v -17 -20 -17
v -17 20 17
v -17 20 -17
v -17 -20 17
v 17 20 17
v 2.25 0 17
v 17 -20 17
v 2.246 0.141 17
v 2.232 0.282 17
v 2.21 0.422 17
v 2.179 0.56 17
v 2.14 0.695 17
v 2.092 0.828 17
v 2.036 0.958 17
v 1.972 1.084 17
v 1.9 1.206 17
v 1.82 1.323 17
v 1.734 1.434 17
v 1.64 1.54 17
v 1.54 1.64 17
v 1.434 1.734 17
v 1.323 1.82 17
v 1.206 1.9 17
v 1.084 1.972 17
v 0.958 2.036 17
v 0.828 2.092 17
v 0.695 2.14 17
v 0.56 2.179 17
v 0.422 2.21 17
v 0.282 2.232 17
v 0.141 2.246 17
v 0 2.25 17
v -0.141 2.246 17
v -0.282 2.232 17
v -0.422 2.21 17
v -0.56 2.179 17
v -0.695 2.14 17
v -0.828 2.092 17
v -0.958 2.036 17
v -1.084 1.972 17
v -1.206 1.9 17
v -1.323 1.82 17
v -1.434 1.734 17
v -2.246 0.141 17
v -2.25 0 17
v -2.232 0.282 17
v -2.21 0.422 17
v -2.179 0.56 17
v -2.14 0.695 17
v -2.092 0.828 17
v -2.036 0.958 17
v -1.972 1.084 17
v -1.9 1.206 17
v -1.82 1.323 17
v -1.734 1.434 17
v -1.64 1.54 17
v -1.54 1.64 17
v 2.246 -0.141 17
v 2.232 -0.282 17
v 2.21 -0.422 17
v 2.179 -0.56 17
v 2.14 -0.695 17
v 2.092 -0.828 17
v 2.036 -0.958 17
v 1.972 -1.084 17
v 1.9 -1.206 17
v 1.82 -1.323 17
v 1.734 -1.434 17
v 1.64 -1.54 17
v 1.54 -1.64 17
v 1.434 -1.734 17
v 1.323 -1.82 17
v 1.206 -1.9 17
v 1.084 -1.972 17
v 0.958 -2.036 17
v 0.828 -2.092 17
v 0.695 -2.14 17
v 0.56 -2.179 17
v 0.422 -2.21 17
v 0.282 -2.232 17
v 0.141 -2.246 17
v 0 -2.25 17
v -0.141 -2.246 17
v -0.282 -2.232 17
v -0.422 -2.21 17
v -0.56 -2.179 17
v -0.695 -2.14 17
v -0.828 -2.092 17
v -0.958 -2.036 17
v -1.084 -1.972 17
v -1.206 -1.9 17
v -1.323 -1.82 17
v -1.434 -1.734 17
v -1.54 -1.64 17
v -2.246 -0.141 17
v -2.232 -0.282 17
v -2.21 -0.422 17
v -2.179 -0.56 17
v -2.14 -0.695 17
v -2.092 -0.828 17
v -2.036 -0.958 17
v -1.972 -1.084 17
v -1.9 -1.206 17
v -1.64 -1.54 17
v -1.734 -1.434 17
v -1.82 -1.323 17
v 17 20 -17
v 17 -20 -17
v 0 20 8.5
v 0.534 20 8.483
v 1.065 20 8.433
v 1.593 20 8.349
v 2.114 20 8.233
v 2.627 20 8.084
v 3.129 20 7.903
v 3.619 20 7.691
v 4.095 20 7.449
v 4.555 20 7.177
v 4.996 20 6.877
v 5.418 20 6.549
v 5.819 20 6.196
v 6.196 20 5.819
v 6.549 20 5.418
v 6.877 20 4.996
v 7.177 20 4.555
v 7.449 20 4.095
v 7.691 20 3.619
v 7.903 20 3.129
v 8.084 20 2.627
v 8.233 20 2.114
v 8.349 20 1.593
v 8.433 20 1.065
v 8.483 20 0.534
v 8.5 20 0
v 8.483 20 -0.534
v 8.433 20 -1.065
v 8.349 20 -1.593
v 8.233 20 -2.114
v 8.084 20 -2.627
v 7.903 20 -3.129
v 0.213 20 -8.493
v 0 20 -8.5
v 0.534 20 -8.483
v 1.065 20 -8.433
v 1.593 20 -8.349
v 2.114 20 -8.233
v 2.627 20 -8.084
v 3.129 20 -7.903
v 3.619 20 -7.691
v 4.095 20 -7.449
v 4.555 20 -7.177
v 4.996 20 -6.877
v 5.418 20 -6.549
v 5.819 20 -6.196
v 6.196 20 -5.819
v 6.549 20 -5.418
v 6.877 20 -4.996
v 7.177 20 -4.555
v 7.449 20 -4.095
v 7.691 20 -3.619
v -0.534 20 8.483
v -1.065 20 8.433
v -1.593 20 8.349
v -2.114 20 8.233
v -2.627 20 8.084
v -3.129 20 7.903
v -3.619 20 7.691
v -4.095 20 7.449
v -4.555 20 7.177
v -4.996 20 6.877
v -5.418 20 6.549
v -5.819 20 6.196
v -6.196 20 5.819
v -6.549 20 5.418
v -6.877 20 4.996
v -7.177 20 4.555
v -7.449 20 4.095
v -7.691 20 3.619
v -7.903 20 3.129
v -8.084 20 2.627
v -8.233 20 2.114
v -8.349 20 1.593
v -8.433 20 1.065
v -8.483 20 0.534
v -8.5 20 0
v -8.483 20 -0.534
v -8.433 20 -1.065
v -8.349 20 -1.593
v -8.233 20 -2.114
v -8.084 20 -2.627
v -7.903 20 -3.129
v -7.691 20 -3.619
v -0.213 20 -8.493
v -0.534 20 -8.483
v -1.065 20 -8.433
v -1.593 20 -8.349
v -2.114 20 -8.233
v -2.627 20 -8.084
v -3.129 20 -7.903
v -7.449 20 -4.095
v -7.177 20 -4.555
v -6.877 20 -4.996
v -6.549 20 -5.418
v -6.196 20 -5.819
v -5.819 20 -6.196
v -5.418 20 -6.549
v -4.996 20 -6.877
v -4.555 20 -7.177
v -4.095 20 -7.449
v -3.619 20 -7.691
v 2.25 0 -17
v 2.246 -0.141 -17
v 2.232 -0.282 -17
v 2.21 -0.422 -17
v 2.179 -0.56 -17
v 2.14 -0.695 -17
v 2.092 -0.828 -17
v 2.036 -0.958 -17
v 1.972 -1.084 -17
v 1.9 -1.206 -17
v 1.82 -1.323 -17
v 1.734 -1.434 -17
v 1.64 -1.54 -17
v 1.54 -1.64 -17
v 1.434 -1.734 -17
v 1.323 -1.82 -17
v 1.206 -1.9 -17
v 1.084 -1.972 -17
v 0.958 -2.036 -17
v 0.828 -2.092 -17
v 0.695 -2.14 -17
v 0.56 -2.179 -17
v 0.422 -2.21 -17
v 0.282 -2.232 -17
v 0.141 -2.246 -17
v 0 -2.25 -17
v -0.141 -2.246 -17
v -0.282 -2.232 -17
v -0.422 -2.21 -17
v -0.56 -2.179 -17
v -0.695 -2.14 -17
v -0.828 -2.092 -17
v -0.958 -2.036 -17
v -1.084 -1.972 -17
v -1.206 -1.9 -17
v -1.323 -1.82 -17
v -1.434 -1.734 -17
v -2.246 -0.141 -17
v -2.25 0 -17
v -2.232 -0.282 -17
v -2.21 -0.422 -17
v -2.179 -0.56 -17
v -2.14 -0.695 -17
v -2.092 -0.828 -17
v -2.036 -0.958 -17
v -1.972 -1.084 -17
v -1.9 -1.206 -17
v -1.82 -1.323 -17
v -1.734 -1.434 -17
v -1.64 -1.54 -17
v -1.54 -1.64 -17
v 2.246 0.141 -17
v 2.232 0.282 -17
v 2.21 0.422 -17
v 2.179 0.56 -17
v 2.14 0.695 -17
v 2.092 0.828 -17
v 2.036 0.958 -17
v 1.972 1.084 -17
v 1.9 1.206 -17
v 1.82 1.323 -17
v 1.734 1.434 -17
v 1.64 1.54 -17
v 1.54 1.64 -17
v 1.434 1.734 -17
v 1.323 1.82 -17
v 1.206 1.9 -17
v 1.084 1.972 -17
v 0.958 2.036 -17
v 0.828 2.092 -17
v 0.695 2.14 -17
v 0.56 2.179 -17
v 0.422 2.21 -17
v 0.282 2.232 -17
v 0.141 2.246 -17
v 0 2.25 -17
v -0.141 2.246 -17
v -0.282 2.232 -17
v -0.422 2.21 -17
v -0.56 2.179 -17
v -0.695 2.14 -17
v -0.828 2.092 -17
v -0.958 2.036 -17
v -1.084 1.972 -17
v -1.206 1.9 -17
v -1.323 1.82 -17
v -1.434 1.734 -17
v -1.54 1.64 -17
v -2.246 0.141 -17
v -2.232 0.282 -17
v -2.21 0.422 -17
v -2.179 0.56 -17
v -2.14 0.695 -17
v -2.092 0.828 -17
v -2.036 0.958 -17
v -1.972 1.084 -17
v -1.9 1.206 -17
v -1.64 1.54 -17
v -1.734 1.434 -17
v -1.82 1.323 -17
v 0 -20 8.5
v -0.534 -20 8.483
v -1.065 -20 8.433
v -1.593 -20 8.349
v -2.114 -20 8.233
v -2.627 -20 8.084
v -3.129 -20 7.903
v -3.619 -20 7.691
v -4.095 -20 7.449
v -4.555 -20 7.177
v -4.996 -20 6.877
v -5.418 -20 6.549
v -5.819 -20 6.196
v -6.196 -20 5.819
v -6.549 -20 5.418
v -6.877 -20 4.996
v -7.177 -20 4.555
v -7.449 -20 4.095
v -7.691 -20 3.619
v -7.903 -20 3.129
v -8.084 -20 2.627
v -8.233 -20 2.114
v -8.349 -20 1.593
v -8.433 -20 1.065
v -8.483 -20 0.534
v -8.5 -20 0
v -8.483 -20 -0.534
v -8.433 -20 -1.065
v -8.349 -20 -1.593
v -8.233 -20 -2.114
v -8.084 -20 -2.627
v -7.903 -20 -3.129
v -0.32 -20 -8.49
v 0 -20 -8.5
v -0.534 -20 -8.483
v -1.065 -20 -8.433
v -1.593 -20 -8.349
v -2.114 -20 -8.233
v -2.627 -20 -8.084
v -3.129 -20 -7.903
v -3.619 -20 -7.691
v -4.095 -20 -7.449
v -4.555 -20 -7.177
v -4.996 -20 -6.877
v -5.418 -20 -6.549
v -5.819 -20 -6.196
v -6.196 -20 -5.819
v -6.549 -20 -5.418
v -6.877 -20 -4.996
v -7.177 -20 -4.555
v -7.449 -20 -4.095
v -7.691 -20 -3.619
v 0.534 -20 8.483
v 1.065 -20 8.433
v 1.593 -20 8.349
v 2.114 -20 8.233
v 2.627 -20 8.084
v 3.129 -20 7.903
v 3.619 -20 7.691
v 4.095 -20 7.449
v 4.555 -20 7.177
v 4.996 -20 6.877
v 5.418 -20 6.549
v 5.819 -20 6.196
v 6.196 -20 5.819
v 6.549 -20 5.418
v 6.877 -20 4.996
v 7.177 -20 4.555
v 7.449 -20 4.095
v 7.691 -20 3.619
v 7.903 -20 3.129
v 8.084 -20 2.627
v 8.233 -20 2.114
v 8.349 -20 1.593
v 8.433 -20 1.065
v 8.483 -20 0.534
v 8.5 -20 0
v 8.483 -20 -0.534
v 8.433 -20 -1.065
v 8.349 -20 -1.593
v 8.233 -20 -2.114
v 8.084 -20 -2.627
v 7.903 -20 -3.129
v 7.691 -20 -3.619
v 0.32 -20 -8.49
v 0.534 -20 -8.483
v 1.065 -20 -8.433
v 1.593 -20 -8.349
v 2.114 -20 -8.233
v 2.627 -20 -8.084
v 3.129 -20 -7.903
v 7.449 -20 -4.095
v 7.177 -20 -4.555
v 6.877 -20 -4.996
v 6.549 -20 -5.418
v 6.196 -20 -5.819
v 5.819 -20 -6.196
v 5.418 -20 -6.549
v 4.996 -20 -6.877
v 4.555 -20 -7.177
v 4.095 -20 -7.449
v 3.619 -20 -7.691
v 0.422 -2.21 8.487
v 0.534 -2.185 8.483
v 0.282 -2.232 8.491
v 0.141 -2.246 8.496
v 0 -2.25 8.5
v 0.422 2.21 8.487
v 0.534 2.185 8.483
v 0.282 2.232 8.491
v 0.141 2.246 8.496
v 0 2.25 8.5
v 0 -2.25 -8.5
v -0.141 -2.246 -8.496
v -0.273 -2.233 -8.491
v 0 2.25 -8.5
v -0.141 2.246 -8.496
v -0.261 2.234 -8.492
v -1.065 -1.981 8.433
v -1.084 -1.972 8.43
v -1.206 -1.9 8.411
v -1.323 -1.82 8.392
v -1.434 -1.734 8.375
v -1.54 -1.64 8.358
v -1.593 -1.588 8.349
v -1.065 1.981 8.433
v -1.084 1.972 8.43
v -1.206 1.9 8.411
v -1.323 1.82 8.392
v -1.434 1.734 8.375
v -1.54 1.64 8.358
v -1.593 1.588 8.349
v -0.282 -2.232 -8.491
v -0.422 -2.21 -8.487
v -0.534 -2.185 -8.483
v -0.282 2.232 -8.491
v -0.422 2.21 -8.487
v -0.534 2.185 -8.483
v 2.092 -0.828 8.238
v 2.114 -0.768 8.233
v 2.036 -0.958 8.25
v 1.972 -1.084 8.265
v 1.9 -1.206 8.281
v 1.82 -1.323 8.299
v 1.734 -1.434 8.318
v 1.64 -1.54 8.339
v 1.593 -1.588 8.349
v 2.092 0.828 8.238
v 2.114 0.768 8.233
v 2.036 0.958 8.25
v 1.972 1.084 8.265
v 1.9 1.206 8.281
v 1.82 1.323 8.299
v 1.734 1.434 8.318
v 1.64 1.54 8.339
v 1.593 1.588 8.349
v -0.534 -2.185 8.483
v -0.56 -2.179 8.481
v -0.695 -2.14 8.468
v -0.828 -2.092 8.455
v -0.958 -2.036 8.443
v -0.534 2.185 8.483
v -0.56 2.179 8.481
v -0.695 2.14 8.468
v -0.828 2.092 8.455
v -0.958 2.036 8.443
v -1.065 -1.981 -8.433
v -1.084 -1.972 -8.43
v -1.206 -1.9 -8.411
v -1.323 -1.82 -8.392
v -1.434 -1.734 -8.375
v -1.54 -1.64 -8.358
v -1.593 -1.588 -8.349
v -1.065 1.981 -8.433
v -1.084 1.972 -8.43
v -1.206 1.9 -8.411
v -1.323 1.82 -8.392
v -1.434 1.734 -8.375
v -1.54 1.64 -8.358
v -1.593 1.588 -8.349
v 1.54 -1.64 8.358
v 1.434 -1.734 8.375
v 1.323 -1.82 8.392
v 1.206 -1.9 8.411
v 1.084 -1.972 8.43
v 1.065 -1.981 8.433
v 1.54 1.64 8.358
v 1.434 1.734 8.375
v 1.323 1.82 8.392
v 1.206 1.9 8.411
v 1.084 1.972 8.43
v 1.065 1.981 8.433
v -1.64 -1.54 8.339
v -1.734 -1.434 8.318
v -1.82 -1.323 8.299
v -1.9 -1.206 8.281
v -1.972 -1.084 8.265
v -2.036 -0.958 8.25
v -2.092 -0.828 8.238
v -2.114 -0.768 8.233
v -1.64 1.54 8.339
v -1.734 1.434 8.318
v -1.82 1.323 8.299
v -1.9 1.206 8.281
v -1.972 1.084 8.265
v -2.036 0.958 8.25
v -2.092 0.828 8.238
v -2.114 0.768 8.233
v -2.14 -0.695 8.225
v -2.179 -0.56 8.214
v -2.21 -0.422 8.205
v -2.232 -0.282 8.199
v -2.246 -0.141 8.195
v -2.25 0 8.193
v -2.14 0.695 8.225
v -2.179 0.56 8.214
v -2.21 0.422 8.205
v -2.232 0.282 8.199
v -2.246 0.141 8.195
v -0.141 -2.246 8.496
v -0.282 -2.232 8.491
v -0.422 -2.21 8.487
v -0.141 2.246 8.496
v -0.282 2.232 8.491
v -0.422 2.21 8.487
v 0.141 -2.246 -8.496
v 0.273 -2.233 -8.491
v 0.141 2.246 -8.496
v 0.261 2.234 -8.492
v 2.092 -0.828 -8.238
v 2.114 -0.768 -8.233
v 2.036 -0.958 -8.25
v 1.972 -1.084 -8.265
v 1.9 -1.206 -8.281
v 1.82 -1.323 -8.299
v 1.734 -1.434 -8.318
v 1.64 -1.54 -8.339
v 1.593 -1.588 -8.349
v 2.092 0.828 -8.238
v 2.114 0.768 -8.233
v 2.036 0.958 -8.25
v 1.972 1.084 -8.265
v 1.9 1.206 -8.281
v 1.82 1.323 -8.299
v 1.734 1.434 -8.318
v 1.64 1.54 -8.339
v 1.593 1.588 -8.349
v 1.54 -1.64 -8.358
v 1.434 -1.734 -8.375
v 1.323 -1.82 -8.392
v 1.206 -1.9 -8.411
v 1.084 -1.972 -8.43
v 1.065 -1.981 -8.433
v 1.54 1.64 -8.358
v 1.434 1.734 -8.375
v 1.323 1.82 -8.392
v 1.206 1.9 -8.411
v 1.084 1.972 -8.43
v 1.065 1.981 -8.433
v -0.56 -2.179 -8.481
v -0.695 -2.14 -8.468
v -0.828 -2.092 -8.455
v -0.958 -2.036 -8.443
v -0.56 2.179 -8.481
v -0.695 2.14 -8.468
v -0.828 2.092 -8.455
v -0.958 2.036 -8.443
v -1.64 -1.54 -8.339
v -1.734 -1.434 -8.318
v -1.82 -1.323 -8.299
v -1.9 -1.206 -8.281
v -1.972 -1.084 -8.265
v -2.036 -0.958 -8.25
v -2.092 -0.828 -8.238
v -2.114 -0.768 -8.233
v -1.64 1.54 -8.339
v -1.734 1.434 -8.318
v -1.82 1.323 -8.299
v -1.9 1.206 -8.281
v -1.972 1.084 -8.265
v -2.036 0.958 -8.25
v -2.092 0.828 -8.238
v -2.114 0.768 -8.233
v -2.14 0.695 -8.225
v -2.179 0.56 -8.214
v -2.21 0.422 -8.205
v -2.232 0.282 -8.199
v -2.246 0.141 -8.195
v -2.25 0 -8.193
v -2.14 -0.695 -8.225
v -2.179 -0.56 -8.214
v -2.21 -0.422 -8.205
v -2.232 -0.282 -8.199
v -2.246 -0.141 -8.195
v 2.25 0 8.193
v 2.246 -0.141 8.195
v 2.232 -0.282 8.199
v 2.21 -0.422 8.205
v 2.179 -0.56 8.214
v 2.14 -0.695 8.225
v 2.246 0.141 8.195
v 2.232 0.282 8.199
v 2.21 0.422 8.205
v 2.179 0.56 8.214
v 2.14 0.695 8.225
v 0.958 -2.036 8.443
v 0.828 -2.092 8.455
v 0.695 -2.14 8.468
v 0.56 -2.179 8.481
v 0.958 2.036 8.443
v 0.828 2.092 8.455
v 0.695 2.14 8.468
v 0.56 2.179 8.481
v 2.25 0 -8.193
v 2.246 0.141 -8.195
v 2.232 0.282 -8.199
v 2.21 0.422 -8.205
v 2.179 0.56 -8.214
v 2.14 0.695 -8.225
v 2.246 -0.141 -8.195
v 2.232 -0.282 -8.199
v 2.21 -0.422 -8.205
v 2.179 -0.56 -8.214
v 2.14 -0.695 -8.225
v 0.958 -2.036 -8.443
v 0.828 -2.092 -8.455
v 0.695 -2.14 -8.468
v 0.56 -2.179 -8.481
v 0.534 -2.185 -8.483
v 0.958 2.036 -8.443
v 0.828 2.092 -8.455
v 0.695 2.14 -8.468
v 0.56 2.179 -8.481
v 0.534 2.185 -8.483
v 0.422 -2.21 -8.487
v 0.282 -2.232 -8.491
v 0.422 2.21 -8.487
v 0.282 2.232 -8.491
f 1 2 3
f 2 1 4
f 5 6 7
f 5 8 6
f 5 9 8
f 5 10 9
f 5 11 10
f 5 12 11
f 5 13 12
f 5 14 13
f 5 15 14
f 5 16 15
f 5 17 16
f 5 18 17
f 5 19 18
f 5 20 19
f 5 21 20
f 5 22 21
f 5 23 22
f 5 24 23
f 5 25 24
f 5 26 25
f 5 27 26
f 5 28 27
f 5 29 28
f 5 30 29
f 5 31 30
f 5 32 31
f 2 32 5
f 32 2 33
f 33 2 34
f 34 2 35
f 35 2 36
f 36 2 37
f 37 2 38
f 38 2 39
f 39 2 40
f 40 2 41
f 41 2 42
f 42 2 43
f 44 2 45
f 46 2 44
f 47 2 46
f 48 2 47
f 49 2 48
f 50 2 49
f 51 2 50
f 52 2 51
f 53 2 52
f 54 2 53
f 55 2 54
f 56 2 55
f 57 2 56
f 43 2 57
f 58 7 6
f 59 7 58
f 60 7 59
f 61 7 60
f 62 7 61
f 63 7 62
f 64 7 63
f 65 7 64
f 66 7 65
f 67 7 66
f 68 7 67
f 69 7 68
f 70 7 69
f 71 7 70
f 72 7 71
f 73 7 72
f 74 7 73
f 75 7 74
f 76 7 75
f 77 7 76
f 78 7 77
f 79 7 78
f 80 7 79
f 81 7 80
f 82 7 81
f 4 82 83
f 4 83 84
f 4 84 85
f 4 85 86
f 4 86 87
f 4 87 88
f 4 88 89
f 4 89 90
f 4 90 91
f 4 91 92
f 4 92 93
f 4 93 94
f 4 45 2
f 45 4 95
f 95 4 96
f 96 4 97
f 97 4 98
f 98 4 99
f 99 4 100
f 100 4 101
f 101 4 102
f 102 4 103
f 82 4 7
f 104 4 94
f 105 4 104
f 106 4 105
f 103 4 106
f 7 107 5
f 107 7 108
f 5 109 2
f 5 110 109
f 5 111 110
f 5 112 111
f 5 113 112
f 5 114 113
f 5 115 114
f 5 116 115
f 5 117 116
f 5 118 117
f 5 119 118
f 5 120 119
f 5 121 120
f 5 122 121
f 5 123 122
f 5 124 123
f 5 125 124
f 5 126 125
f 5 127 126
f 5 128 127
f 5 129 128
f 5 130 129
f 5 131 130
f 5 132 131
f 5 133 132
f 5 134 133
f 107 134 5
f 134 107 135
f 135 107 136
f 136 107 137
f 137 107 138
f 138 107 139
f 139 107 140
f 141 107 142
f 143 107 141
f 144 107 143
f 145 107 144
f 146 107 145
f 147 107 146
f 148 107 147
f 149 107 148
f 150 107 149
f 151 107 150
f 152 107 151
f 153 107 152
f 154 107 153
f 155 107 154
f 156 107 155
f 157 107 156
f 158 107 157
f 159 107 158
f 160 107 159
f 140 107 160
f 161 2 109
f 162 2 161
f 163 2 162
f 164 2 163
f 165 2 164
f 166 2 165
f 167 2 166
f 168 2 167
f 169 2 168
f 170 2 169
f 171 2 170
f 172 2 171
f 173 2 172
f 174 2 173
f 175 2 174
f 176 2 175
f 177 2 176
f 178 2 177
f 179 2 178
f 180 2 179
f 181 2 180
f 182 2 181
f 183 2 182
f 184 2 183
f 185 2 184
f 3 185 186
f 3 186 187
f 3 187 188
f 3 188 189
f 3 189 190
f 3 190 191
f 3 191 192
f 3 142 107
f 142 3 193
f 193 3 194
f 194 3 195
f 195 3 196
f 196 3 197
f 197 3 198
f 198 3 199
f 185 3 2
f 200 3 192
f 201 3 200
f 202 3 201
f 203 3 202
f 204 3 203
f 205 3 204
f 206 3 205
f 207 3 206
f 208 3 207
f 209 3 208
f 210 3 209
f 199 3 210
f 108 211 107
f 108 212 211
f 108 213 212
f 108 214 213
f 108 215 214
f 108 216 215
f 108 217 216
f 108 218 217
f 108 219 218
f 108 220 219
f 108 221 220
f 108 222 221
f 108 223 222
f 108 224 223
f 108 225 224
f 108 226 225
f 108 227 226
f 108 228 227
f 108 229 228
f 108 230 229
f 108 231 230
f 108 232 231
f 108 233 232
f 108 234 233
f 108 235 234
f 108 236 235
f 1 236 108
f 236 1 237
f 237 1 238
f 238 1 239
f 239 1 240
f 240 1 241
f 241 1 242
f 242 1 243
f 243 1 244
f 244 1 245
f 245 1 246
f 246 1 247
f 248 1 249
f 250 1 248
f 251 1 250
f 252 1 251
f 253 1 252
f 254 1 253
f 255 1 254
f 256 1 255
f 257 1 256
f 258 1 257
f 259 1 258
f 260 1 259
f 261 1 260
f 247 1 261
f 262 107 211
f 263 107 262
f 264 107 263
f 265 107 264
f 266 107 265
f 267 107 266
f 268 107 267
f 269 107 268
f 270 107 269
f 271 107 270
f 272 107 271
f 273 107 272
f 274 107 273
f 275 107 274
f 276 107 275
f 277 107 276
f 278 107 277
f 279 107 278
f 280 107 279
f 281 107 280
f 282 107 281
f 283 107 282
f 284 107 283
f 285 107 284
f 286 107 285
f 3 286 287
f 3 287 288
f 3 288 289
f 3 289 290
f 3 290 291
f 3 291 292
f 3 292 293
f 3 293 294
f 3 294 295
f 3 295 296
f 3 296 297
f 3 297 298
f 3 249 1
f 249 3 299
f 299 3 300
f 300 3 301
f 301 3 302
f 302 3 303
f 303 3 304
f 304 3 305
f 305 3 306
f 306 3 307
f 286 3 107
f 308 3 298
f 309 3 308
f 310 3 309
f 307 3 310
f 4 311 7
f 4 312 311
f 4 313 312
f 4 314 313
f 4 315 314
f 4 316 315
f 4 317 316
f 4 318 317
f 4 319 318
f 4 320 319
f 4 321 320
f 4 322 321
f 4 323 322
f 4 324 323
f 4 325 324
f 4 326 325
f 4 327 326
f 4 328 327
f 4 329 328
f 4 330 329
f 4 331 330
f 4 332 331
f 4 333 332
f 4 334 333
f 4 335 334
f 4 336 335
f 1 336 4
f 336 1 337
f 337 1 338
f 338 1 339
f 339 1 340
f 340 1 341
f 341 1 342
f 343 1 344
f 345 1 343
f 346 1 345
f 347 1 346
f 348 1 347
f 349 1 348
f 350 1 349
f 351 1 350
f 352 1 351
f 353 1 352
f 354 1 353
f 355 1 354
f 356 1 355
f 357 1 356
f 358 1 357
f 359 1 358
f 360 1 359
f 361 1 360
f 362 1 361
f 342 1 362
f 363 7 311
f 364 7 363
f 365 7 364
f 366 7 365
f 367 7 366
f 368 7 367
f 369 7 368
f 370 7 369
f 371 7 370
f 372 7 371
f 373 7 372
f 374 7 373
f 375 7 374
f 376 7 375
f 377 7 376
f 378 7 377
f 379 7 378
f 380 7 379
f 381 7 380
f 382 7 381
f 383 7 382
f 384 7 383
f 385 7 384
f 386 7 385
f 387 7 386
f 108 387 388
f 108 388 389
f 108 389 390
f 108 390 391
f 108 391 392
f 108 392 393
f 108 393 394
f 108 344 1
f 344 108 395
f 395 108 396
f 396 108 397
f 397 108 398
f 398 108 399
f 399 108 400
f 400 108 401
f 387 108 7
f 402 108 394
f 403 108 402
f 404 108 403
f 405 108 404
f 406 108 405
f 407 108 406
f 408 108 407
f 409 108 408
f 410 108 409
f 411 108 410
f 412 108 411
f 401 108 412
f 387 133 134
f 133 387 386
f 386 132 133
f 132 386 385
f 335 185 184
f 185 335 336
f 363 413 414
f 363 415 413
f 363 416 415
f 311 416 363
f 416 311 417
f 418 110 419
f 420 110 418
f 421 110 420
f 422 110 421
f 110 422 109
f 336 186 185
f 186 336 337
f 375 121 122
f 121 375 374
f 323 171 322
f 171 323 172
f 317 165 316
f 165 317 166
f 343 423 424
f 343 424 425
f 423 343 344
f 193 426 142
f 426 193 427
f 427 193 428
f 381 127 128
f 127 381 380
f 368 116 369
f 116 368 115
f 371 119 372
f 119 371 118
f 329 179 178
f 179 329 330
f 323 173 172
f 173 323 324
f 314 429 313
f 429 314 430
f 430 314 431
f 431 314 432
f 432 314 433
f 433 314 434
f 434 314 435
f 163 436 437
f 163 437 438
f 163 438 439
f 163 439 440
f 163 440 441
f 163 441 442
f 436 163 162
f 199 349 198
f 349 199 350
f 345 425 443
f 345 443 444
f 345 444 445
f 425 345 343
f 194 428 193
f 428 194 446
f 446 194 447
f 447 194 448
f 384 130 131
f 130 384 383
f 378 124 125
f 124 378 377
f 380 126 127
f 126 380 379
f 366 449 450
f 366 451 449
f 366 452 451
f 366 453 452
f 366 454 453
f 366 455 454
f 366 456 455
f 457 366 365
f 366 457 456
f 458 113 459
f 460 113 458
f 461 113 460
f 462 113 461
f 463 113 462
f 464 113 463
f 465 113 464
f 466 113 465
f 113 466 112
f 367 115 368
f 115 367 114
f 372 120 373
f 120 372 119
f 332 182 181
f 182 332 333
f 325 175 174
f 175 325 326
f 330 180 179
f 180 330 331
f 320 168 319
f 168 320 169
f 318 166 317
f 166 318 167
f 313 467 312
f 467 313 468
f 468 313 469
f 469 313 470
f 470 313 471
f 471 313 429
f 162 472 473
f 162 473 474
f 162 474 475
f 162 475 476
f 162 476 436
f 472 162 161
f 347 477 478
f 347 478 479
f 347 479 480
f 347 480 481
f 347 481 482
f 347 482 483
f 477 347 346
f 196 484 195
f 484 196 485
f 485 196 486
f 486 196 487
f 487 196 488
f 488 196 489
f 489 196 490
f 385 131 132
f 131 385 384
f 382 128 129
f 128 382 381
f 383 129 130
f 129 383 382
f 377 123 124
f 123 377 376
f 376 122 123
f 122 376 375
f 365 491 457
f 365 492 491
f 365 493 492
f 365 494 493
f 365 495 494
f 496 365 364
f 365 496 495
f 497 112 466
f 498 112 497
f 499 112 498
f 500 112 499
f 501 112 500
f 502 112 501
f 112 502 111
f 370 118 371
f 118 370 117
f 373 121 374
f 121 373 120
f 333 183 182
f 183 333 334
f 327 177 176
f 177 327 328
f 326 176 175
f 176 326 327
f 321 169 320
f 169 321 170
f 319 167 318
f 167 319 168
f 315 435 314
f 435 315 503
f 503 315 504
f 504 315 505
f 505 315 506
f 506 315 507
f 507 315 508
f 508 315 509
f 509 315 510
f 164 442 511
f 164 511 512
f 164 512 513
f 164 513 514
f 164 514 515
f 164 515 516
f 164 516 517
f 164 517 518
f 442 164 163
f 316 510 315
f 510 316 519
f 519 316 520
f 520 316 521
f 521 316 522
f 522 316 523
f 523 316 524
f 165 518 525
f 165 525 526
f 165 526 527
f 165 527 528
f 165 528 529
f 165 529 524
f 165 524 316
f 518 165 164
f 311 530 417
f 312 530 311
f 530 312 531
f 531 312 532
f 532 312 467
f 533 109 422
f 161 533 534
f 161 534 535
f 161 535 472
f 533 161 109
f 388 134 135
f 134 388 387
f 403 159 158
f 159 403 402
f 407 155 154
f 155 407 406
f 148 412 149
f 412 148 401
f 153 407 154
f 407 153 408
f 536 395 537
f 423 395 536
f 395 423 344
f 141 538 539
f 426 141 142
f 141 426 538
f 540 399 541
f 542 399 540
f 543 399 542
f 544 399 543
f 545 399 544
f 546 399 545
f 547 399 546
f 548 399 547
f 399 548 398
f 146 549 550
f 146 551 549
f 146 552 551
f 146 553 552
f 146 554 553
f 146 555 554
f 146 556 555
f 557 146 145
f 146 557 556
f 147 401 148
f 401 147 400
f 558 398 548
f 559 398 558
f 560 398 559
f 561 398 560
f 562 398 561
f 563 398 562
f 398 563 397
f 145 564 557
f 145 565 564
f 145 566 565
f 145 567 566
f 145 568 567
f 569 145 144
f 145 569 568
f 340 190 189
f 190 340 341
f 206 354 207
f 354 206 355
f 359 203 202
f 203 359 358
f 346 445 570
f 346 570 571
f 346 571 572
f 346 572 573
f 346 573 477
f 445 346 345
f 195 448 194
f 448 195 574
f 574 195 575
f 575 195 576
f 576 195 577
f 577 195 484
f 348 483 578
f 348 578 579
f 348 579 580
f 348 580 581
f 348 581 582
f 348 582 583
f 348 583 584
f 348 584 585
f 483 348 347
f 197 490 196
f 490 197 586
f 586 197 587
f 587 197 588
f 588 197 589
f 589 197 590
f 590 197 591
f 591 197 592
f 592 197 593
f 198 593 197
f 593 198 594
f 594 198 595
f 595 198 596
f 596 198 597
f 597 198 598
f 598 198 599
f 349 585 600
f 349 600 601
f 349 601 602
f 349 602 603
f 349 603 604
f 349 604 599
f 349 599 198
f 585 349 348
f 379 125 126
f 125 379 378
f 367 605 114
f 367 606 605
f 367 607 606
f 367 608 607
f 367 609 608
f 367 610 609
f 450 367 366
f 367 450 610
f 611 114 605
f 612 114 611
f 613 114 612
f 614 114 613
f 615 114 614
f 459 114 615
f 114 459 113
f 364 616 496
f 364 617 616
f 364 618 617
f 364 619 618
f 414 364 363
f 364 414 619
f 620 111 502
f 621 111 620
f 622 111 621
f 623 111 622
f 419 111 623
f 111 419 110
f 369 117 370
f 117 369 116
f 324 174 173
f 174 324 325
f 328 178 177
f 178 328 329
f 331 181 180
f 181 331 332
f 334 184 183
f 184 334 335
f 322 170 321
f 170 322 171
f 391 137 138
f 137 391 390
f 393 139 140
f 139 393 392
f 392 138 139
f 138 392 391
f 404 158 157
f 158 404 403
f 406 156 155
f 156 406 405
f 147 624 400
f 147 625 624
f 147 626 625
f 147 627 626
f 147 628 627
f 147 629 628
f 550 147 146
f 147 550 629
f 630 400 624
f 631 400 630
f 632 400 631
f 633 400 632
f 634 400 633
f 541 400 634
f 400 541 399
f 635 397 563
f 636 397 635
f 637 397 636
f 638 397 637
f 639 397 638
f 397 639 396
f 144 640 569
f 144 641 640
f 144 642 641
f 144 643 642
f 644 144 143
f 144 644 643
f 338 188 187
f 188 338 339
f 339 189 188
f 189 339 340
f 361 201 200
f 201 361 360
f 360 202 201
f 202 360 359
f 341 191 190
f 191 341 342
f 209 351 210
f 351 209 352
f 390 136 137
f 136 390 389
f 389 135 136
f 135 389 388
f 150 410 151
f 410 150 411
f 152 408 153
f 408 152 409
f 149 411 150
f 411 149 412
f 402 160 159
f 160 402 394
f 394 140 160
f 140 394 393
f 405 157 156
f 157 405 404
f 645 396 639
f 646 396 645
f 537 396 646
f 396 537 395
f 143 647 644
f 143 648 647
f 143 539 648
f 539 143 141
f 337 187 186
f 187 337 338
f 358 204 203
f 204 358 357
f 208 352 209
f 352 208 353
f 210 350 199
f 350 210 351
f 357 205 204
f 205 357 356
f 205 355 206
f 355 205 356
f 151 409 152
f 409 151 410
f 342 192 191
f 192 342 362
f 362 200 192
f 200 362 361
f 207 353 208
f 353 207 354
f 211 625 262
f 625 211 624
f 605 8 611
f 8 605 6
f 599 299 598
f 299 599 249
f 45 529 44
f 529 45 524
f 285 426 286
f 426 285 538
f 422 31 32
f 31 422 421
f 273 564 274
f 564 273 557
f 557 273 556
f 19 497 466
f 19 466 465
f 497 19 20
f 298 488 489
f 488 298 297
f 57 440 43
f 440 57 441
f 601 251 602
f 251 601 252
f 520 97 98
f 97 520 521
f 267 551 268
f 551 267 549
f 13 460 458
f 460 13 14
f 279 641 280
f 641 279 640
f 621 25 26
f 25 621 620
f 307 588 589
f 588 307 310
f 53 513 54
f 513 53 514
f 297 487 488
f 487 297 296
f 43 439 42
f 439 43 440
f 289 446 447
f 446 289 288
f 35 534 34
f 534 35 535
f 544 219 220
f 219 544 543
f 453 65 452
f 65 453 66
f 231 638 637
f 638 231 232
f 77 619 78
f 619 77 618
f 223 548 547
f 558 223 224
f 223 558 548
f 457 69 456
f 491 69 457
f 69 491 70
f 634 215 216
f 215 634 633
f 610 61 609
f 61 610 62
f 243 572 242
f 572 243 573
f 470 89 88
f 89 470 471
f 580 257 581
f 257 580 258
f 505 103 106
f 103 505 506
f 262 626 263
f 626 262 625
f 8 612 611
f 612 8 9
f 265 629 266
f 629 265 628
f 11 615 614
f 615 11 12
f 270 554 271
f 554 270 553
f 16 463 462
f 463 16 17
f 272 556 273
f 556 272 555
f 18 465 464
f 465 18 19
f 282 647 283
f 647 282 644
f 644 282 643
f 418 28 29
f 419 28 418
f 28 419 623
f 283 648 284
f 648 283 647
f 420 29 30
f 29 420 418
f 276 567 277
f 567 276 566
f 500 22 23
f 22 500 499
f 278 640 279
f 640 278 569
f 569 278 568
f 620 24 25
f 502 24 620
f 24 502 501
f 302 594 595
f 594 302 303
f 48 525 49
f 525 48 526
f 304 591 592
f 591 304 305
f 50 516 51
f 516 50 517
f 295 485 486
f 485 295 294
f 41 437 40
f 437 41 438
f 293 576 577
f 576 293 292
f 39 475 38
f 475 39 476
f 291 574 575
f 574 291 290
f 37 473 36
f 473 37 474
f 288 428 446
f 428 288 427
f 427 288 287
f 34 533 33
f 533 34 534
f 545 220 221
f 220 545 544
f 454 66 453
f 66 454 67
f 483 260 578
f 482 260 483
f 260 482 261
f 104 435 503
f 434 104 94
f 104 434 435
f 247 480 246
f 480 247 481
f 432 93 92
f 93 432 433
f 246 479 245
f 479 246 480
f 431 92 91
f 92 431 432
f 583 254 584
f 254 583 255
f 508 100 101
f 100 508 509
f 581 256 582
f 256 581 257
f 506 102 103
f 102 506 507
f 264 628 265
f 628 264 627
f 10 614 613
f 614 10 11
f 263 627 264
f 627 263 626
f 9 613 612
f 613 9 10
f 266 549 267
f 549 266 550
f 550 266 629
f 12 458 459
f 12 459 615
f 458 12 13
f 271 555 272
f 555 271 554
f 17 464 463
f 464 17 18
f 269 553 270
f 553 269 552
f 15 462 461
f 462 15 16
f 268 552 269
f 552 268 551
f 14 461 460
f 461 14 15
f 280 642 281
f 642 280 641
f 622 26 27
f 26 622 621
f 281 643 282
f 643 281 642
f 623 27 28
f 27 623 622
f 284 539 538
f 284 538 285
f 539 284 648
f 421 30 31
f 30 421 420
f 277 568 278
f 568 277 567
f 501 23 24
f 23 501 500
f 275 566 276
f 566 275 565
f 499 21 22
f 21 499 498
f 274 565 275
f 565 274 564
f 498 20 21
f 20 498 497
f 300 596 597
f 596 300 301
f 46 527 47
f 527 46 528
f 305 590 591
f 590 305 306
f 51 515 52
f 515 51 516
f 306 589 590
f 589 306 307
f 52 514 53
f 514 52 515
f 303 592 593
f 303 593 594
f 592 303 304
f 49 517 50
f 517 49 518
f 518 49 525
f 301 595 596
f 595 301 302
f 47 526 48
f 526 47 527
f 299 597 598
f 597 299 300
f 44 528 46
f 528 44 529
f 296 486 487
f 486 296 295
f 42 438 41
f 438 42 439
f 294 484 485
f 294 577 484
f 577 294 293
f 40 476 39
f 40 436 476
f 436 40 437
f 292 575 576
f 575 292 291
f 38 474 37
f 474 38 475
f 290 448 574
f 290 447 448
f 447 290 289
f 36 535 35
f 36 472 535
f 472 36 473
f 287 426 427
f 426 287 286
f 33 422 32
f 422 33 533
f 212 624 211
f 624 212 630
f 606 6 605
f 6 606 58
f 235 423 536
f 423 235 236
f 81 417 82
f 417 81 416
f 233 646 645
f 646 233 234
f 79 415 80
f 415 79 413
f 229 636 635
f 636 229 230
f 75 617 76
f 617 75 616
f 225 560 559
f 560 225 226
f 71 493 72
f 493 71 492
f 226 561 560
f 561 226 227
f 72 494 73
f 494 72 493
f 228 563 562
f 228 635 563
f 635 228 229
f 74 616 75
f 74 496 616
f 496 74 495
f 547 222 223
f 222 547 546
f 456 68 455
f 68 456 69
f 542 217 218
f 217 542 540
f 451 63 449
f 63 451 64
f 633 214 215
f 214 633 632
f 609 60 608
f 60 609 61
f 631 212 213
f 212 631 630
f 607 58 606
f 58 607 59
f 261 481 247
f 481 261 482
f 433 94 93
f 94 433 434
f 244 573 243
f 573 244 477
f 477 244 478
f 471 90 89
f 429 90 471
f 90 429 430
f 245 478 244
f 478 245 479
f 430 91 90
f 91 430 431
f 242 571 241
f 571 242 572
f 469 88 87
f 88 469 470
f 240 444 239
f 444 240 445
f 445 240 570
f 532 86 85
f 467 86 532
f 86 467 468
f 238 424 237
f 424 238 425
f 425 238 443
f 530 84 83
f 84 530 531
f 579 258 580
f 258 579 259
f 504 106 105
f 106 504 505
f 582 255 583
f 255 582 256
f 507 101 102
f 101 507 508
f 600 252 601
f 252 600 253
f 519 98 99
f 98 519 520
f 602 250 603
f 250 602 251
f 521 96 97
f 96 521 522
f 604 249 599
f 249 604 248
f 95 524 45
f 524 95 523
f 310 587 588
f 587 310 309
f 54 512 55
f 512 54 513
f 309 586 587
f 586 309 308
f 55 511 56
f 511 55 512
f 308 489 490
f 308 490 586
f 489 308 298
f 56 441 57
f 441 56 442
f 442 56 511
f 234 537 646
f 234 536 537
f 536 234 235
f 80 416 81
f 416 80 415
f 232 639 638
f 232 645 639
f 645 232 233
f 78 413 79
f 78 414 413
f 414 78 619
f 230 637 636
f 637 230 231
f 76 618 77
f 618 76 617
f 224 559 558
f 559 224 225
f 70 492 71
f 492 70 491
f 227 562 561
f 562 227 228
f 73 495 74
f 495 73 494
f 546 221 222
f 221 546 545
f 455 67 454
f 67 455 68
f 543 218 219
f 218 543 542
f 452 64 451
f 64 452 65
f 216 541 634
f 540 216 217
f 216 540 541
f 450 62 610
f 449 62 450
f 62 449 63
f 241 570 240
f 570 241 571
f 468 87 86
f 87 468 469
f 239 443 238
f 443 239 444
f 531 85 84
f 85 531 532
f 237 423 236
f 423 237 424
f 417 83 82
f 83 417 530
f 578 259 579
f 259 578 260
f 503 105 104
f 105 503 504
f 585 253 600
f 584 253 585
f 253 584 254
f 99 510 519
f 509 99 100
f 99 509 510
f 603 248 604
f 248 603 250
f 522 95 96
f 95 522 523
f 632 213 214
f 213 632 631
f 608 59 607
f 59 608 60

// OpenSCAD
difference() {
	cube(center = true, size = [34.0000000000, 40, 34.0000000000]);
	translate(v = [0, 100, 0]) {
		rotate(a = [90, 0, 0]) {
			cylinder($fn = 100, d = 17.0000000000, h = 200);
		}
	}
	translate(v = [0, 0, 0]) {
		cylinder($fn = 100, center = true, d = 4.5000000000, h = 100);
	}
}
